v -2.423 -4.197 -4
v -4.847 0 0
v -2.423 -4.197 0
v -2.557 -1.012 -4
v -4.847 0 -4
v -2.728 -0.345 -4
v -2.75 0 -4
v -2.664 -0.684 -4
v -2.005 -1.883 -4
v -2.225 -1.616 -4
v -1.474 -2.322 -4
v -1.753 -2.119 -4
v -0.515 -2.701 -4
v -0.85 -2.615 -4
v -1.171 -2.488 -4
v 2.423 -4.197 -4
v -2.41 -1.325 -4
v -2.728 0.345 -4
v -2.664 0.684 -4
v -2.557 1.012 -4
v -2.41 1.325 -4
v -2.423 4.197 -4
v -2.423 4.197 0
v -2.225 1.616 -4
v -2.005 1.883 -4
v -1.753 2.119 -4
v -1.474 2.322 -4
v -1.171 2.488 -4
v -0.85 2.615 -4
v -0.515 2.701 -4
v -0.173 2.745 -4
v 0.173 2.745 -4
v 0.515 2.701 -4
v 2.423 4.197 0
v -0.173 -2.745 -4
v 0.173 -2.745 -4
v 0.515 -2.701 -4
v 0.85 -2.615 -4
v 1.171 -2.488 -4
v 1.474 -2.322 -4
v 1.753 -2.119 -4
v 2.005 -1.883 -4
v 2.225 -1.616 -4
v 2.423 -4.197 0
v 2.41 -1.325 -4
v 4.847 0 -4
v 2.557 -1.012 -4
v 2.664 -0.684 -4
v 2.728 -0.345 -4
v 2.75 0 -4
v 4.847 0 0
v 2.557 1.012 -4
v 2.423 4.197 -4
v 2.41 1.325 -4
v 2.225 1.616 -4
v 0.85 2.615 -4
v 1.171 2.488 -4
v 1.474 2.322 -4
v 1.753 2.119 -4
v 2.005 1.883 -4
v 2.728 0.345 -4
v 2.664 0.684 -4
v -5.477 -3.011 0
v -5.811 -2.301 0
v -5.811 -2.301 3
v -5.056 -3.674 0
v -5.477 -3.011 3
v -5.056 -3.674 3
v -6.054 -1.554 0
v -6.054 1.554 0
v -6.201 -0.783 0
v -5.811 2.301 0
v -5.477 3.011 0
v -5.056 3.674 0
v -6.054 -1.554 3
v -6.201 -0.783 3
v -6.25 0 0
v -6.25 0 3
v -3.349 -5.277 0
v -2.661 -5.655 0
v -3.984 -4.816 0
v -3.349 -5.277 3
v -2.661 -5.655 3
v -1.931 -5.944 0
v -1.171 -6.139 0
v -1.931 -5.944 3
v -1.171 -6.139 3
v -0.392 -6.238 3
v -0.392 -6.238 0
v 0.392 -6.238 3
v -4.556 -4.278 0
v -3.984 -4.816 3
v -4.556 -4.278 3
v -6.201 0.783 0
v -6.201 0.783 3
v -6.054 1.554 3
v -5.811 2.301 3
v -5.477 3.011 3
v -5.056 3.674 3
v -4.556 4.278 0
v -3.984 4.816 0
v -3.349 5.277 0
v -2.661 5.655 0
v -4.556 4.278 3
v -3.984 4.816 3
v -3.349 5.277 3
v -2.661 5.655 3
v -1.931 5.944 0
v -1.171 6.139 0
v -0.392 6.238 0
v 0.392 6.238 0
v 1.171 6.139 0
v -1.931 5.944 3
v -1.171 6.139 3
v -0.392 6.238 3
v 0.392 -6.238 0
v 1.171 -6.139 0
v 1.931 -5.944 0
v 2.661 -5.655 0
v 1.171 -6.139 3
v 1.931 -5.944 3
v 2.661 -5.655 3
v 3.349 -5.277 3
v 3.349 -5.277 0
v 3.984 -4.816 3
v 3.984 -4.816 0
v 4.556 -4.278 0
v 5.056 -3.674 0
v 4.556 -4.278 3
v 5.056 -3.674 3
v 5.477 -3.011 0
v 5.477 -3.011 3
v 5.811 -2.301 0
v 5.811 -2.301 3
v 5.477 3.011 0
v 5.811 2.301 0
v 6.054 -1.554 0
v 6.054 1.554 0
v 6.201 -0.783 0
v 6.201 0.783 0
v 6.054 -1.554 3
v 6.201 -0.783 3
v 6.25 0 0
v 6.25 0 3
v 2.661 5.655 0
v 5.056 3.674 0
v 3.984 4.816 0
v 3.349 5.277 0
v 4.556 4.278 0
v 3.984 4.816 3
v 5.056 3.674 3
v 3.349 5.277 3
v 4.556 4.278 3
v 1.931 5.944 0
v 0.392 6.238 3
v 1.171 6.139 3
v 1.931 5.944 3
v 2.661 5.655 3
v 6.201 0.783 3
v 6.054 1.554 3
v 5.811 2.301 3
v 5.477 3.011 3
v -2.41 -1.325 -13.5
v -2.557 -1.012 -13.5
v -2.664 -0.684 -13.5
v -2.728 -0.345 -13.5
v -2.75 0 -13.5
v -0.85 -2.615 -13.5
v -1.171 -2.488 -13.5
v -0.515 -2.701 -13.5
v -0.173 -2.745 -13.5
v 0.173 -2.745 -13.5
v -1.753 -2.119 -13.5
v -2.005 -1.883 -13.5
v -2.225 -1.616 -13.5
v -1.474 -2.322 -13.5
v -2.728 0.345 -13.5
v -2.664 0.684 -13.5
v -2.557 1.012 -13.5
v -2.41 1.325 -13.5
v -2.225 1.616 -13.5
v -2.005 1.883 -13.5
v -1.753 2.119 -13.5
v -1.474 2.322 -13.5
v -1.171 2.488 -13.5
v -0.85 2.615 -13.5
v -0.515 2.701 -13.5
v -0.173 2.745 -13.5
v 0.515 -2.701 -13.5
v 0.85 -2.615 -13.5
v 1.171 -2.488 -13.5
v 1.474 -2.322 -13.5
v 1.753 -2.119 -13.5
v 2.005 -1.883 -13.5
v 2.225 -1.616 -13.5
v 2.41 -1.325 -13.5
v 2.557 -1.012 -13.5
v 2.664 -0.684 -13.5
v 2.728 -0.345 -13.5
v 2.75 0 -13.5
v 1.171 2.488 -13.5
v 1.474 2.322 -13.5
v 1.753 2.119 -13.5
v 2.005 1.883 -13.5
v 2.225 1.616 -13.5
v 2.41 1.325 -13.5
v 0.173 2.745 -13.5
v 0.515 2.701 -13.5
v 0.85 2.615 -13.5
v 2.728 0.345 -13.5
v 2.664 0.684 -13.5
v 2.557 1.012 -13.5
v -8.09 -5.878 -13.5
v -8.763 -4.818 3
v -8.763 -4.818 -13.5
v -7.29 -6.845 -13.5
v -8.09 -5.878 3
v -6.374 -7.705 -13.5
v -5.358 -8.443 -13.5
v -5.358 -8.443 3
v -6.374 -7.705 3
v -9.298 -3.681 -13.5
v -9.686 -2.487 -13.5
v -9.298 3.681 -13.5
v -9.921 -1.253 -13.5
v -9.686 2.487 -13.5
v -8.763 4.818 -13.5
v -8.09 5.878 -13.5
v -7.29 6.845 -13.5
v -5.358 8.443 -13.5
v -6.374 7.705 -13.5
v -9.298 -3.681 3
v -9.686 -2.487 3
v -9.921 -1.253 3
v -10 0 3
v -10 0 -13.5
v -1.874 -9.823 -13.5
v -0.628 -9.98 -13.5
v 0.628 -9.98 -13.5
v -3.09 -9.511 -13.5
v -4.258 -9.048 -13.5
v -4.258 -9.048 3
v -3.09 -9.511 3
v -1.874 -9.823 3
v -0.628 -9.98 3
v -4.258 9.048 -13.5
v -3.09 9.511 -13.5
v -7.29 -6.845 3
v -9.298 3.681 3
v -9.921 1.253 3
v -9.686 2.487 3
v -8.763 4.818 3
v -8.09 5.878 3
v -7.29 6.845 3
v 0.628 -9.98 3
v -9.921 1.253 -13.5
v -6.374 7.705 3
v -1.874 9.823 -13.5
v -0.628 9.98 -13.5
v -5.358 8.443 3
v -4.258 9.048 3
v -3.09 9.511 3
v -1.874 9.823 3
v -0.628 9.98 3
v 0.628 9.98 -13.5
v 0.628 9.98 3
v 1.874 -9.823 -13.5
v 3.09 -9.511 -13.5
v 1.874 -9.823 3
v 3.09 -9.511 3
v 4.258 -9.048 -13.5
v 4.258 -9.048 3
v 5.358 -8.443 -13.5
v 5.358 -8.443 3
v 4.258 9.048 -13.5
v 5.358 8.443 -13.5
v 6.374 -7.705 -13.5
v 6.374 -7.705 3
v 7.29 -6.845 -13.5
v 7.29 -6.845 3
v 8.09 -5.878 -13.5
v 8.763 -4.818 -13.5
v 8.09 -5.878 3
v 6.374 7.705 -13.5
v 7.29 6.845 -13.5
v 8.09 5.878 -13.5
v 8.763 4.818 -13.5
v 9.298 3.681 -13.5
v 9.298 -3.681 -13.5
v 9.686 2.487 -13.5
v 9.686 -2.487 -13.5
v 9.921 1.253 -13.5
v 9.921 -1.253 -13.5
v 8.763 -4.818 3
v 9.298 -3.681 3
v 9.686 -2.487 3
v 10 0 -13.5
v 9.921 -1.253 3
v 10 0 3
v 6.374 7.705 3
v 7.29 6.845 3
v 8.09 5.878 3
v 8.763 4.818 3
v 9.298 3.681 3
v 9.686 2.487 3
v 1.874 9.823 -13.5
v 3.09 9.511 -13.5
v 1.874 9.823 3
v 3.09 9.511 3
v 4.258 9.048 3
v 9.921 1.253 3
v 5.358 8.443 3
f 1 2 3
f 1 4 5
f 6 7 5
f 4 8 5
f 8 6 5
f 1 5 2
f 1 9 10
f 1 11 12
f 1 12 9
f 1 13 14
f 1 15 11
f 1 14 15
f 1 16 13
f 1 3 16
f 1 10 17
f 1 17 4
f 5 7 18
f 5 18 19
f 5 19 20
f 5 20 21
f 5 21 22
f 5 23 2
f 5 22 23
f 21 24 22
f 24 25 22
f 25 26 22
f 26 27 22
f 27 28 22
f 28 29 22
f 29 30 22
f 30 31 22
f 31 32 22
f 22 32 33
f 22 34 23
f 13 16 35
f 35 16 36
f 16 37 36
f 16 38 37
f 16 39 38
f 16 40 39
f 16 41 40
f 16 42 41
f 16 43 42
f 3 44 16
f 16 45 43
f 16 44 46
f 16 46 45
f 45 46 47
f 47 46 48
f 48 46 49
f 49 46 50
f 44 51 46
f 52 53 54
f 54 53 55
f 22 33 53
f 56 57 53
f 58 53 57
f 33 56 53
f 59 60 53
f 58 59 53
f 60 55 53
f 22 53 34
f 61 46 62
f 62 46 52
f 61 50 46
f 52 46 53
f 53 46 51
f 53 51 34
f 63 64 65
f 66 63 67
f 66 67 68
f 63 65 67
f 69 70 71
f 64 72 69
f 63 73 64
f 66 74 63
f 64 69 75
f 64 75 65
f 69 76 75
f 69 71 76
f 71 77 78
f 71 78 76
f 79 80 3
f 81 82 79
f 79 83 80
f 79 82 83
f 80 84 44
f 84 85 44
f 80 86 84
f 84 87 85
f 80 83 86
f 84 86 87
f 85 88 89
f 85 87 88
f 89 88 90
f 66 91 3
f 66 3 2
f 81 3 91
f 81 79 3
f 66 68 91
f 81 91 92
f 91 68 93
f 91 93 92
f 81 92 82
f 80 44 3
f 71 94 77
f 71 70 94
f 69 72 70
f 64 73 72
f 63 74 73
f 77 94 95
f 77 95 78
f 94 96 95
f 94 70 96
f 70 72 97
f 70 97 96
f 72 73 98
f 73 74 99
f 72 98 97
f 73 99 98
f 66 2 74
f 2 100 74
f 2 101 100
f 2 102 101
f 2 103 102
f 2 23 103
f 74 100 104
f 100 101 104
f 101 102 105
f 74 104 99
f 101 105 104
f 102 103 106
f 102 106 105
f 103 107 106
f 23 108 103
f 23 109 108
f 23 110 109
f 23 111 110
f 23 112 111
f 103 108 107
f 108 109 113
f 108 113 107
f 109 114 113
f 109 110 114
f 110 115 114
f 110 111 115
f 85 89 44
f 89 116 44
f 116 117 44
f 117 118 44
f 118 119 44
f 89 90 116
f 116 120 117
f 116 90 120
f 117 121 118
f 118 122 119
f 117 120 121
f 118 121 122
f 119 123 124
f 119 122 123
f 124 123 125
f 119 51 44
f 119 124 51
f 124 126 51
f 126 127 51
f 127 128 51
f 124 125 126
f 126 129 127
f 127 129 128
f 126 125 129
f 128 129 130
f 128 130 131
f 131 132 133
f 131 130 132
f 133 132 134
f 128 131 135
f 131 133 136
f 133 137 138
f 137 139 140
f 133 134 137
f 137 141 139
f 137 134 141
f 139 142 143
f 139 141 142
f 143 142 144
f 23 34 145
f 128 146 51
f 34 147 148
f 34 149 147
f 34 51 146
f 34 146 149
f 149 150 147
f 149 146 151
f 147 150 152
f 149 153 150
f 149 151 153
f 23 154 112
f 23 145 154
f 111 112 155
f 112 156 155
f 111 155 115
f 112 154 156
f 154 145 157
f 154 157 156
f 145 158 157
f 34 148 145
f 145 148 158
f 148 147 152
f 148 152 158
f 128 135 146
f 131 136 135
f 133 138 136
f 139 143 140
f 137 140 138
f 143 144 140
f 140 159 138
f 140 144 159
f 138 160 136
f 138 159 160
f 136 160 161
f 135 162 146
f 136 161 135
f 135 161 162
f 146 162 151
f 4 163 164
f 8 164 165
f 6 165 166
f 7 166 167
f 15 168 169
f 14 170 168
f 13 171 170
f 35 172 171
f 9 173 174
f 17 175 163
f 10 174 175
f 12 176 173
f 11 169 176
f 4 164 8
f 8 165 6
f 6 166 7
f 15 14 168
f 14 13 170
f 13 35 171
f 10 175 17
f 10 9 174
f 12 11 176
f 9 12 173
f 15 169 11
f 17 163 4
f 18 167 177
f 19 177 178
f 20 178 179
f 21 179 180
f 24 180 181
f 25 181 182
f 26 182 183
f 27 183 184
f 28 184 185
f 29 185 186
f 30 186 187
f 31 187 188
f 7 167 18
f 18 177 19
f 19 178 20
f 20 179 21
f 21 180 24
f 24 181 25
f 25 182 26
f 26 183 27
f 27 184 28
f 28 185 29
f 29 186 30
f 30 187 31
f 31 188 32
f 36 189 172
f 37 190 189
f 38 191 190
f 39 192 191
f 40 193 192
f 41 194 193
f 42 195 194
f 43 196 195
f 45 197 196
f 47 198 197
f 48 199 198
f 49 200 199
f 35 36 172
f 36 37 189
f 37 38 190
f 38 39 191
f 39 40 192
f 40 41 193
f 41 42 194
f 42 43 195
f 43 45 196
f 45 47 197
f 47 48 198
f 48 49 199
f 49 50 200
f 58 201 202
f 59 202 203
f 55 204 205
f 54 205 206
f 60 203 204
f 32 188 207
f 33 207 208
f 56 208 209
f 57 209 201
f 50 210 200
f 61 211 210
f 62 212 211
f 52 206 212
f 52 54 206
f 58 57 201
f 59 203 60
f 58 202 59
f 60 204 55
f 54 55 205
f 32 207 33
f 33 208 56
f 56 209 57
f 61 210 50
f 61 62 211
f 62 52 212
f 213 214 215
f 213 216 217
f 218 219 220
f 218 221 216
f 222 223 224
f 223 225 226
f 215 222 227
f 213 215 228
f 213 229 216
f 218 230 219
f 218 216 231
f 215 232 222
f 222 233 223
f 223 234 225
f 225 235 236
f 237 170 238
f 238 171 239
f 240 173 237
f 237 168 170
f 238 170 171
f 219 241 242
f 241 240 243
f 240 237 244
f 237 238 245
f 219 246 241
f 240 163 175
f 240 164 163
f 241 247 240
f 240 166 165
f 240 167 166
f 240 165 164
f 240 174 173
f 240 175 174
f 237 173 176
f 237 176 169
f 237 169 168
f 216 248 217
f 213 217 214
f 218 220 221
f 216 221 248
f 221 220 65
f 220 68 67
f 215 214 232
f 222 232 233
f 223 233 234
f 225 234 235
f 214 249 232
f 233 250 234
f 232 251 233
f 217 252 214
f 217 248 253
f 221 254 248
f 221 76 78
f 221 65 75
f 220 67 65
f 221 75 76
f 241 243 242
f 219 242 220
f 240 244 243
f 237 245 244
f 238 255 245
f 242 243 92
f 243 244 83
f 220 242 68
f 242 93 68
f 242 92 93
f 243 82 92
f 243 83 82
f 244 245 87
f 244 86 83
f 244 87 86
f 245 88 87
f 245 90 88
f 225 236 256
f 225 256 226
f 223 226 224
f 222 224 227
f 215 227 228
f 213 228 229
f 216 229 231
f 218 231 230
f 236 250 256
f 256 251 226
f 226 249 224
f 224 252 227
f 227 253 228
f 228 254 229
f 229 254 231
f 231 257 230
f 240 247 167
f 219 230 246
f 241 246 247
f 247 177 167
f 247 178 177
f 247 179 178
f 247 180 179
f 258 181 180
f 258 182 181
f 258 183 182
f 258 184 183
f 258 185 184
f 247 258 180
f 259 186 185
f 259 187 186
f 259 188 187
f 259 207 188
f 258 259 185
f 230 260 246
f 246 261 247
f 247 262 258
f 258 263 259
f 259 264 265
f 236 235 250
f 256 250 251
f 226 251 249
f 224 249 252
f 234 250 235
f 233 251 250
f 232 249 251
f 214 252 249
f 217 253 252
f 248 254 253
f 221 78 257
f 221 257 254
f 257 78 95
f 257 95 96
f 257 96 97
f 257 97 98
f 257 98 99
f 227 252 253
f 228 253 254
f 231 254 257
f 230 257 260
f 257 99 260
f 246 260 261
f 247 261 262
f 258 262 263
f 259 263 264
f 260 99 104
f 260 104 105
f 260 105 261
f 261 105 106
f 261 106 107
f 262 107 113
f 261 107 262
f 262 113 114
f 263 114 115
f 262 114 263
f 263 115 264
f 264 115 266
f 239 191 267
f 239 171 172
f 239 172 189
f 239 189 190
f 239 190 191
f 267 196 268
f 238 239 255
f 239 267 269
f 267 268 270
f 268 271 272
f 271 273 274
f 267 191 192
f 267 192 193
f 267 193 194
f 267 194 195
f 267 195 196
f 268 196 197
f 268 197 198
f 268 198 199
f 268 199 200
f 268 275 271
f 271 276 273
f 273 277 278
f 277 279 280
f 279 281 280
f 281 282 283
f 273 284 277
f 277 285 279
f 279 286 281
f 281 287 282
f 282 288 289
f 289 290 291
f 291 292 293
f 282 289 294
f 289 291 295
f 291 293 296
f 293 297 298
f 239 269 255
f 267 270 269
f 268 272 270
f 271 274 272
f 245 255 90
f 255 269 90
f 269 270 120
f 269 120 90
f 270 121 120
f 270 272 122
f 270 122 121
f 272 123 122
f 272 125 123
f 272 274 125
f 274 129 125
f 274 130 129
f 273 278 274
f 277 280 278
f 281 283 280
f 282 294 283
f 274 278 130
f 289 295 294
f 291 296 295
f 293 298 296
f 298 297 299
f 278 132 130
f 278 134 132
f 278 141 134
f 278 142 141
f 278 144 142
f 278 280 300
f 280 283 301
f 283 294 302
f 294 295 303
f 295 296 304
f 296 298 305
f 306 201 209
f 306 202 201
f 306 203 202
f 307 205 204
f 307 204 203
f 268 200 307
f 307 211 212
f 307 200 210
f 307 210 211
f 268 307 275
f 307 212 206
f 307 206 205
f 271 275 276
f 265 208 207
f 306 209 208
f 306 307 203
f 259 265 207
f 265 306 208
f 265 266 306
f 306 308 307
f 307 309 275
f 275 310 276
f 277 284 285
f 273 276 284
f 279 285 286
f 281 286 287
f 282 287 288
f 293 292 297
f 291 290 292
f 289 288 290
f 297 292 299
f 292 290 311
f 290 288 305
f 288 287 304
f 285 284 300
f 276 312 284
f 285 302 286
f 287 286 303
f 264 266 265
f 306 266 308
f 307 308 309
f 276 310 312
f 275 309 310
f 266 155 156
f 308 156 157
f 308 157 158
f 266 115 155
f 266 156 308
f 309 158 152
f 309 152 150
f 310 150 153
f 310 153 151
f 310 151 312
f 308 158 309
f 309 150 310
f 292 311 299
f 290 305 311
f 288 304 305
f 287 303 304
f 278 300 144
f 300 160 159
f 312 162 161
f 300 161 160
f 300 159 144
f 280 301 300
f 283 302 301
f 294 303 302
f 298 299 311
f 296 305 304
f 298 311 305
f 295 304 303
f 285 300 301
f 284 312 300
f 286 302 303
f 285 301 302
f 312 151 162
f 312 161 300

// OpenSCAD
$fn = 50;


difference() {
	union() {
		translate(v = [0, 0, -13.5000000000]) {
			cylinder(h = 16.5000000000, r = 10.0000000000);
		}
	}
	union() {
		translate(v = [0, 0, 0]) {
			rotate(a = [0, 0, 0]) {
				difference() {
					union() {
						translate(v = [0, 0, -4]) {
							linear_extrude(height = 4) {
								polygon(points = [[4.8468000000, 0.0000000000], [2.4234000000, 4.1974519271], [-2.4234000000, 4.1974519271], [-4.8468000000, 0.0000000000], [-2.4234000000, -4.1974519271], [2.4234000000, -4.1974519271]]);
							}
						}
					}
					union();
				}
			}
		}
		#cylinder(h = 3, r = 6.2500000000);
		#translate(v = [0, 0, -100.0000000000]) {
			cylinder(h = 200, r = 2.7500000000);
		}
	}
}
